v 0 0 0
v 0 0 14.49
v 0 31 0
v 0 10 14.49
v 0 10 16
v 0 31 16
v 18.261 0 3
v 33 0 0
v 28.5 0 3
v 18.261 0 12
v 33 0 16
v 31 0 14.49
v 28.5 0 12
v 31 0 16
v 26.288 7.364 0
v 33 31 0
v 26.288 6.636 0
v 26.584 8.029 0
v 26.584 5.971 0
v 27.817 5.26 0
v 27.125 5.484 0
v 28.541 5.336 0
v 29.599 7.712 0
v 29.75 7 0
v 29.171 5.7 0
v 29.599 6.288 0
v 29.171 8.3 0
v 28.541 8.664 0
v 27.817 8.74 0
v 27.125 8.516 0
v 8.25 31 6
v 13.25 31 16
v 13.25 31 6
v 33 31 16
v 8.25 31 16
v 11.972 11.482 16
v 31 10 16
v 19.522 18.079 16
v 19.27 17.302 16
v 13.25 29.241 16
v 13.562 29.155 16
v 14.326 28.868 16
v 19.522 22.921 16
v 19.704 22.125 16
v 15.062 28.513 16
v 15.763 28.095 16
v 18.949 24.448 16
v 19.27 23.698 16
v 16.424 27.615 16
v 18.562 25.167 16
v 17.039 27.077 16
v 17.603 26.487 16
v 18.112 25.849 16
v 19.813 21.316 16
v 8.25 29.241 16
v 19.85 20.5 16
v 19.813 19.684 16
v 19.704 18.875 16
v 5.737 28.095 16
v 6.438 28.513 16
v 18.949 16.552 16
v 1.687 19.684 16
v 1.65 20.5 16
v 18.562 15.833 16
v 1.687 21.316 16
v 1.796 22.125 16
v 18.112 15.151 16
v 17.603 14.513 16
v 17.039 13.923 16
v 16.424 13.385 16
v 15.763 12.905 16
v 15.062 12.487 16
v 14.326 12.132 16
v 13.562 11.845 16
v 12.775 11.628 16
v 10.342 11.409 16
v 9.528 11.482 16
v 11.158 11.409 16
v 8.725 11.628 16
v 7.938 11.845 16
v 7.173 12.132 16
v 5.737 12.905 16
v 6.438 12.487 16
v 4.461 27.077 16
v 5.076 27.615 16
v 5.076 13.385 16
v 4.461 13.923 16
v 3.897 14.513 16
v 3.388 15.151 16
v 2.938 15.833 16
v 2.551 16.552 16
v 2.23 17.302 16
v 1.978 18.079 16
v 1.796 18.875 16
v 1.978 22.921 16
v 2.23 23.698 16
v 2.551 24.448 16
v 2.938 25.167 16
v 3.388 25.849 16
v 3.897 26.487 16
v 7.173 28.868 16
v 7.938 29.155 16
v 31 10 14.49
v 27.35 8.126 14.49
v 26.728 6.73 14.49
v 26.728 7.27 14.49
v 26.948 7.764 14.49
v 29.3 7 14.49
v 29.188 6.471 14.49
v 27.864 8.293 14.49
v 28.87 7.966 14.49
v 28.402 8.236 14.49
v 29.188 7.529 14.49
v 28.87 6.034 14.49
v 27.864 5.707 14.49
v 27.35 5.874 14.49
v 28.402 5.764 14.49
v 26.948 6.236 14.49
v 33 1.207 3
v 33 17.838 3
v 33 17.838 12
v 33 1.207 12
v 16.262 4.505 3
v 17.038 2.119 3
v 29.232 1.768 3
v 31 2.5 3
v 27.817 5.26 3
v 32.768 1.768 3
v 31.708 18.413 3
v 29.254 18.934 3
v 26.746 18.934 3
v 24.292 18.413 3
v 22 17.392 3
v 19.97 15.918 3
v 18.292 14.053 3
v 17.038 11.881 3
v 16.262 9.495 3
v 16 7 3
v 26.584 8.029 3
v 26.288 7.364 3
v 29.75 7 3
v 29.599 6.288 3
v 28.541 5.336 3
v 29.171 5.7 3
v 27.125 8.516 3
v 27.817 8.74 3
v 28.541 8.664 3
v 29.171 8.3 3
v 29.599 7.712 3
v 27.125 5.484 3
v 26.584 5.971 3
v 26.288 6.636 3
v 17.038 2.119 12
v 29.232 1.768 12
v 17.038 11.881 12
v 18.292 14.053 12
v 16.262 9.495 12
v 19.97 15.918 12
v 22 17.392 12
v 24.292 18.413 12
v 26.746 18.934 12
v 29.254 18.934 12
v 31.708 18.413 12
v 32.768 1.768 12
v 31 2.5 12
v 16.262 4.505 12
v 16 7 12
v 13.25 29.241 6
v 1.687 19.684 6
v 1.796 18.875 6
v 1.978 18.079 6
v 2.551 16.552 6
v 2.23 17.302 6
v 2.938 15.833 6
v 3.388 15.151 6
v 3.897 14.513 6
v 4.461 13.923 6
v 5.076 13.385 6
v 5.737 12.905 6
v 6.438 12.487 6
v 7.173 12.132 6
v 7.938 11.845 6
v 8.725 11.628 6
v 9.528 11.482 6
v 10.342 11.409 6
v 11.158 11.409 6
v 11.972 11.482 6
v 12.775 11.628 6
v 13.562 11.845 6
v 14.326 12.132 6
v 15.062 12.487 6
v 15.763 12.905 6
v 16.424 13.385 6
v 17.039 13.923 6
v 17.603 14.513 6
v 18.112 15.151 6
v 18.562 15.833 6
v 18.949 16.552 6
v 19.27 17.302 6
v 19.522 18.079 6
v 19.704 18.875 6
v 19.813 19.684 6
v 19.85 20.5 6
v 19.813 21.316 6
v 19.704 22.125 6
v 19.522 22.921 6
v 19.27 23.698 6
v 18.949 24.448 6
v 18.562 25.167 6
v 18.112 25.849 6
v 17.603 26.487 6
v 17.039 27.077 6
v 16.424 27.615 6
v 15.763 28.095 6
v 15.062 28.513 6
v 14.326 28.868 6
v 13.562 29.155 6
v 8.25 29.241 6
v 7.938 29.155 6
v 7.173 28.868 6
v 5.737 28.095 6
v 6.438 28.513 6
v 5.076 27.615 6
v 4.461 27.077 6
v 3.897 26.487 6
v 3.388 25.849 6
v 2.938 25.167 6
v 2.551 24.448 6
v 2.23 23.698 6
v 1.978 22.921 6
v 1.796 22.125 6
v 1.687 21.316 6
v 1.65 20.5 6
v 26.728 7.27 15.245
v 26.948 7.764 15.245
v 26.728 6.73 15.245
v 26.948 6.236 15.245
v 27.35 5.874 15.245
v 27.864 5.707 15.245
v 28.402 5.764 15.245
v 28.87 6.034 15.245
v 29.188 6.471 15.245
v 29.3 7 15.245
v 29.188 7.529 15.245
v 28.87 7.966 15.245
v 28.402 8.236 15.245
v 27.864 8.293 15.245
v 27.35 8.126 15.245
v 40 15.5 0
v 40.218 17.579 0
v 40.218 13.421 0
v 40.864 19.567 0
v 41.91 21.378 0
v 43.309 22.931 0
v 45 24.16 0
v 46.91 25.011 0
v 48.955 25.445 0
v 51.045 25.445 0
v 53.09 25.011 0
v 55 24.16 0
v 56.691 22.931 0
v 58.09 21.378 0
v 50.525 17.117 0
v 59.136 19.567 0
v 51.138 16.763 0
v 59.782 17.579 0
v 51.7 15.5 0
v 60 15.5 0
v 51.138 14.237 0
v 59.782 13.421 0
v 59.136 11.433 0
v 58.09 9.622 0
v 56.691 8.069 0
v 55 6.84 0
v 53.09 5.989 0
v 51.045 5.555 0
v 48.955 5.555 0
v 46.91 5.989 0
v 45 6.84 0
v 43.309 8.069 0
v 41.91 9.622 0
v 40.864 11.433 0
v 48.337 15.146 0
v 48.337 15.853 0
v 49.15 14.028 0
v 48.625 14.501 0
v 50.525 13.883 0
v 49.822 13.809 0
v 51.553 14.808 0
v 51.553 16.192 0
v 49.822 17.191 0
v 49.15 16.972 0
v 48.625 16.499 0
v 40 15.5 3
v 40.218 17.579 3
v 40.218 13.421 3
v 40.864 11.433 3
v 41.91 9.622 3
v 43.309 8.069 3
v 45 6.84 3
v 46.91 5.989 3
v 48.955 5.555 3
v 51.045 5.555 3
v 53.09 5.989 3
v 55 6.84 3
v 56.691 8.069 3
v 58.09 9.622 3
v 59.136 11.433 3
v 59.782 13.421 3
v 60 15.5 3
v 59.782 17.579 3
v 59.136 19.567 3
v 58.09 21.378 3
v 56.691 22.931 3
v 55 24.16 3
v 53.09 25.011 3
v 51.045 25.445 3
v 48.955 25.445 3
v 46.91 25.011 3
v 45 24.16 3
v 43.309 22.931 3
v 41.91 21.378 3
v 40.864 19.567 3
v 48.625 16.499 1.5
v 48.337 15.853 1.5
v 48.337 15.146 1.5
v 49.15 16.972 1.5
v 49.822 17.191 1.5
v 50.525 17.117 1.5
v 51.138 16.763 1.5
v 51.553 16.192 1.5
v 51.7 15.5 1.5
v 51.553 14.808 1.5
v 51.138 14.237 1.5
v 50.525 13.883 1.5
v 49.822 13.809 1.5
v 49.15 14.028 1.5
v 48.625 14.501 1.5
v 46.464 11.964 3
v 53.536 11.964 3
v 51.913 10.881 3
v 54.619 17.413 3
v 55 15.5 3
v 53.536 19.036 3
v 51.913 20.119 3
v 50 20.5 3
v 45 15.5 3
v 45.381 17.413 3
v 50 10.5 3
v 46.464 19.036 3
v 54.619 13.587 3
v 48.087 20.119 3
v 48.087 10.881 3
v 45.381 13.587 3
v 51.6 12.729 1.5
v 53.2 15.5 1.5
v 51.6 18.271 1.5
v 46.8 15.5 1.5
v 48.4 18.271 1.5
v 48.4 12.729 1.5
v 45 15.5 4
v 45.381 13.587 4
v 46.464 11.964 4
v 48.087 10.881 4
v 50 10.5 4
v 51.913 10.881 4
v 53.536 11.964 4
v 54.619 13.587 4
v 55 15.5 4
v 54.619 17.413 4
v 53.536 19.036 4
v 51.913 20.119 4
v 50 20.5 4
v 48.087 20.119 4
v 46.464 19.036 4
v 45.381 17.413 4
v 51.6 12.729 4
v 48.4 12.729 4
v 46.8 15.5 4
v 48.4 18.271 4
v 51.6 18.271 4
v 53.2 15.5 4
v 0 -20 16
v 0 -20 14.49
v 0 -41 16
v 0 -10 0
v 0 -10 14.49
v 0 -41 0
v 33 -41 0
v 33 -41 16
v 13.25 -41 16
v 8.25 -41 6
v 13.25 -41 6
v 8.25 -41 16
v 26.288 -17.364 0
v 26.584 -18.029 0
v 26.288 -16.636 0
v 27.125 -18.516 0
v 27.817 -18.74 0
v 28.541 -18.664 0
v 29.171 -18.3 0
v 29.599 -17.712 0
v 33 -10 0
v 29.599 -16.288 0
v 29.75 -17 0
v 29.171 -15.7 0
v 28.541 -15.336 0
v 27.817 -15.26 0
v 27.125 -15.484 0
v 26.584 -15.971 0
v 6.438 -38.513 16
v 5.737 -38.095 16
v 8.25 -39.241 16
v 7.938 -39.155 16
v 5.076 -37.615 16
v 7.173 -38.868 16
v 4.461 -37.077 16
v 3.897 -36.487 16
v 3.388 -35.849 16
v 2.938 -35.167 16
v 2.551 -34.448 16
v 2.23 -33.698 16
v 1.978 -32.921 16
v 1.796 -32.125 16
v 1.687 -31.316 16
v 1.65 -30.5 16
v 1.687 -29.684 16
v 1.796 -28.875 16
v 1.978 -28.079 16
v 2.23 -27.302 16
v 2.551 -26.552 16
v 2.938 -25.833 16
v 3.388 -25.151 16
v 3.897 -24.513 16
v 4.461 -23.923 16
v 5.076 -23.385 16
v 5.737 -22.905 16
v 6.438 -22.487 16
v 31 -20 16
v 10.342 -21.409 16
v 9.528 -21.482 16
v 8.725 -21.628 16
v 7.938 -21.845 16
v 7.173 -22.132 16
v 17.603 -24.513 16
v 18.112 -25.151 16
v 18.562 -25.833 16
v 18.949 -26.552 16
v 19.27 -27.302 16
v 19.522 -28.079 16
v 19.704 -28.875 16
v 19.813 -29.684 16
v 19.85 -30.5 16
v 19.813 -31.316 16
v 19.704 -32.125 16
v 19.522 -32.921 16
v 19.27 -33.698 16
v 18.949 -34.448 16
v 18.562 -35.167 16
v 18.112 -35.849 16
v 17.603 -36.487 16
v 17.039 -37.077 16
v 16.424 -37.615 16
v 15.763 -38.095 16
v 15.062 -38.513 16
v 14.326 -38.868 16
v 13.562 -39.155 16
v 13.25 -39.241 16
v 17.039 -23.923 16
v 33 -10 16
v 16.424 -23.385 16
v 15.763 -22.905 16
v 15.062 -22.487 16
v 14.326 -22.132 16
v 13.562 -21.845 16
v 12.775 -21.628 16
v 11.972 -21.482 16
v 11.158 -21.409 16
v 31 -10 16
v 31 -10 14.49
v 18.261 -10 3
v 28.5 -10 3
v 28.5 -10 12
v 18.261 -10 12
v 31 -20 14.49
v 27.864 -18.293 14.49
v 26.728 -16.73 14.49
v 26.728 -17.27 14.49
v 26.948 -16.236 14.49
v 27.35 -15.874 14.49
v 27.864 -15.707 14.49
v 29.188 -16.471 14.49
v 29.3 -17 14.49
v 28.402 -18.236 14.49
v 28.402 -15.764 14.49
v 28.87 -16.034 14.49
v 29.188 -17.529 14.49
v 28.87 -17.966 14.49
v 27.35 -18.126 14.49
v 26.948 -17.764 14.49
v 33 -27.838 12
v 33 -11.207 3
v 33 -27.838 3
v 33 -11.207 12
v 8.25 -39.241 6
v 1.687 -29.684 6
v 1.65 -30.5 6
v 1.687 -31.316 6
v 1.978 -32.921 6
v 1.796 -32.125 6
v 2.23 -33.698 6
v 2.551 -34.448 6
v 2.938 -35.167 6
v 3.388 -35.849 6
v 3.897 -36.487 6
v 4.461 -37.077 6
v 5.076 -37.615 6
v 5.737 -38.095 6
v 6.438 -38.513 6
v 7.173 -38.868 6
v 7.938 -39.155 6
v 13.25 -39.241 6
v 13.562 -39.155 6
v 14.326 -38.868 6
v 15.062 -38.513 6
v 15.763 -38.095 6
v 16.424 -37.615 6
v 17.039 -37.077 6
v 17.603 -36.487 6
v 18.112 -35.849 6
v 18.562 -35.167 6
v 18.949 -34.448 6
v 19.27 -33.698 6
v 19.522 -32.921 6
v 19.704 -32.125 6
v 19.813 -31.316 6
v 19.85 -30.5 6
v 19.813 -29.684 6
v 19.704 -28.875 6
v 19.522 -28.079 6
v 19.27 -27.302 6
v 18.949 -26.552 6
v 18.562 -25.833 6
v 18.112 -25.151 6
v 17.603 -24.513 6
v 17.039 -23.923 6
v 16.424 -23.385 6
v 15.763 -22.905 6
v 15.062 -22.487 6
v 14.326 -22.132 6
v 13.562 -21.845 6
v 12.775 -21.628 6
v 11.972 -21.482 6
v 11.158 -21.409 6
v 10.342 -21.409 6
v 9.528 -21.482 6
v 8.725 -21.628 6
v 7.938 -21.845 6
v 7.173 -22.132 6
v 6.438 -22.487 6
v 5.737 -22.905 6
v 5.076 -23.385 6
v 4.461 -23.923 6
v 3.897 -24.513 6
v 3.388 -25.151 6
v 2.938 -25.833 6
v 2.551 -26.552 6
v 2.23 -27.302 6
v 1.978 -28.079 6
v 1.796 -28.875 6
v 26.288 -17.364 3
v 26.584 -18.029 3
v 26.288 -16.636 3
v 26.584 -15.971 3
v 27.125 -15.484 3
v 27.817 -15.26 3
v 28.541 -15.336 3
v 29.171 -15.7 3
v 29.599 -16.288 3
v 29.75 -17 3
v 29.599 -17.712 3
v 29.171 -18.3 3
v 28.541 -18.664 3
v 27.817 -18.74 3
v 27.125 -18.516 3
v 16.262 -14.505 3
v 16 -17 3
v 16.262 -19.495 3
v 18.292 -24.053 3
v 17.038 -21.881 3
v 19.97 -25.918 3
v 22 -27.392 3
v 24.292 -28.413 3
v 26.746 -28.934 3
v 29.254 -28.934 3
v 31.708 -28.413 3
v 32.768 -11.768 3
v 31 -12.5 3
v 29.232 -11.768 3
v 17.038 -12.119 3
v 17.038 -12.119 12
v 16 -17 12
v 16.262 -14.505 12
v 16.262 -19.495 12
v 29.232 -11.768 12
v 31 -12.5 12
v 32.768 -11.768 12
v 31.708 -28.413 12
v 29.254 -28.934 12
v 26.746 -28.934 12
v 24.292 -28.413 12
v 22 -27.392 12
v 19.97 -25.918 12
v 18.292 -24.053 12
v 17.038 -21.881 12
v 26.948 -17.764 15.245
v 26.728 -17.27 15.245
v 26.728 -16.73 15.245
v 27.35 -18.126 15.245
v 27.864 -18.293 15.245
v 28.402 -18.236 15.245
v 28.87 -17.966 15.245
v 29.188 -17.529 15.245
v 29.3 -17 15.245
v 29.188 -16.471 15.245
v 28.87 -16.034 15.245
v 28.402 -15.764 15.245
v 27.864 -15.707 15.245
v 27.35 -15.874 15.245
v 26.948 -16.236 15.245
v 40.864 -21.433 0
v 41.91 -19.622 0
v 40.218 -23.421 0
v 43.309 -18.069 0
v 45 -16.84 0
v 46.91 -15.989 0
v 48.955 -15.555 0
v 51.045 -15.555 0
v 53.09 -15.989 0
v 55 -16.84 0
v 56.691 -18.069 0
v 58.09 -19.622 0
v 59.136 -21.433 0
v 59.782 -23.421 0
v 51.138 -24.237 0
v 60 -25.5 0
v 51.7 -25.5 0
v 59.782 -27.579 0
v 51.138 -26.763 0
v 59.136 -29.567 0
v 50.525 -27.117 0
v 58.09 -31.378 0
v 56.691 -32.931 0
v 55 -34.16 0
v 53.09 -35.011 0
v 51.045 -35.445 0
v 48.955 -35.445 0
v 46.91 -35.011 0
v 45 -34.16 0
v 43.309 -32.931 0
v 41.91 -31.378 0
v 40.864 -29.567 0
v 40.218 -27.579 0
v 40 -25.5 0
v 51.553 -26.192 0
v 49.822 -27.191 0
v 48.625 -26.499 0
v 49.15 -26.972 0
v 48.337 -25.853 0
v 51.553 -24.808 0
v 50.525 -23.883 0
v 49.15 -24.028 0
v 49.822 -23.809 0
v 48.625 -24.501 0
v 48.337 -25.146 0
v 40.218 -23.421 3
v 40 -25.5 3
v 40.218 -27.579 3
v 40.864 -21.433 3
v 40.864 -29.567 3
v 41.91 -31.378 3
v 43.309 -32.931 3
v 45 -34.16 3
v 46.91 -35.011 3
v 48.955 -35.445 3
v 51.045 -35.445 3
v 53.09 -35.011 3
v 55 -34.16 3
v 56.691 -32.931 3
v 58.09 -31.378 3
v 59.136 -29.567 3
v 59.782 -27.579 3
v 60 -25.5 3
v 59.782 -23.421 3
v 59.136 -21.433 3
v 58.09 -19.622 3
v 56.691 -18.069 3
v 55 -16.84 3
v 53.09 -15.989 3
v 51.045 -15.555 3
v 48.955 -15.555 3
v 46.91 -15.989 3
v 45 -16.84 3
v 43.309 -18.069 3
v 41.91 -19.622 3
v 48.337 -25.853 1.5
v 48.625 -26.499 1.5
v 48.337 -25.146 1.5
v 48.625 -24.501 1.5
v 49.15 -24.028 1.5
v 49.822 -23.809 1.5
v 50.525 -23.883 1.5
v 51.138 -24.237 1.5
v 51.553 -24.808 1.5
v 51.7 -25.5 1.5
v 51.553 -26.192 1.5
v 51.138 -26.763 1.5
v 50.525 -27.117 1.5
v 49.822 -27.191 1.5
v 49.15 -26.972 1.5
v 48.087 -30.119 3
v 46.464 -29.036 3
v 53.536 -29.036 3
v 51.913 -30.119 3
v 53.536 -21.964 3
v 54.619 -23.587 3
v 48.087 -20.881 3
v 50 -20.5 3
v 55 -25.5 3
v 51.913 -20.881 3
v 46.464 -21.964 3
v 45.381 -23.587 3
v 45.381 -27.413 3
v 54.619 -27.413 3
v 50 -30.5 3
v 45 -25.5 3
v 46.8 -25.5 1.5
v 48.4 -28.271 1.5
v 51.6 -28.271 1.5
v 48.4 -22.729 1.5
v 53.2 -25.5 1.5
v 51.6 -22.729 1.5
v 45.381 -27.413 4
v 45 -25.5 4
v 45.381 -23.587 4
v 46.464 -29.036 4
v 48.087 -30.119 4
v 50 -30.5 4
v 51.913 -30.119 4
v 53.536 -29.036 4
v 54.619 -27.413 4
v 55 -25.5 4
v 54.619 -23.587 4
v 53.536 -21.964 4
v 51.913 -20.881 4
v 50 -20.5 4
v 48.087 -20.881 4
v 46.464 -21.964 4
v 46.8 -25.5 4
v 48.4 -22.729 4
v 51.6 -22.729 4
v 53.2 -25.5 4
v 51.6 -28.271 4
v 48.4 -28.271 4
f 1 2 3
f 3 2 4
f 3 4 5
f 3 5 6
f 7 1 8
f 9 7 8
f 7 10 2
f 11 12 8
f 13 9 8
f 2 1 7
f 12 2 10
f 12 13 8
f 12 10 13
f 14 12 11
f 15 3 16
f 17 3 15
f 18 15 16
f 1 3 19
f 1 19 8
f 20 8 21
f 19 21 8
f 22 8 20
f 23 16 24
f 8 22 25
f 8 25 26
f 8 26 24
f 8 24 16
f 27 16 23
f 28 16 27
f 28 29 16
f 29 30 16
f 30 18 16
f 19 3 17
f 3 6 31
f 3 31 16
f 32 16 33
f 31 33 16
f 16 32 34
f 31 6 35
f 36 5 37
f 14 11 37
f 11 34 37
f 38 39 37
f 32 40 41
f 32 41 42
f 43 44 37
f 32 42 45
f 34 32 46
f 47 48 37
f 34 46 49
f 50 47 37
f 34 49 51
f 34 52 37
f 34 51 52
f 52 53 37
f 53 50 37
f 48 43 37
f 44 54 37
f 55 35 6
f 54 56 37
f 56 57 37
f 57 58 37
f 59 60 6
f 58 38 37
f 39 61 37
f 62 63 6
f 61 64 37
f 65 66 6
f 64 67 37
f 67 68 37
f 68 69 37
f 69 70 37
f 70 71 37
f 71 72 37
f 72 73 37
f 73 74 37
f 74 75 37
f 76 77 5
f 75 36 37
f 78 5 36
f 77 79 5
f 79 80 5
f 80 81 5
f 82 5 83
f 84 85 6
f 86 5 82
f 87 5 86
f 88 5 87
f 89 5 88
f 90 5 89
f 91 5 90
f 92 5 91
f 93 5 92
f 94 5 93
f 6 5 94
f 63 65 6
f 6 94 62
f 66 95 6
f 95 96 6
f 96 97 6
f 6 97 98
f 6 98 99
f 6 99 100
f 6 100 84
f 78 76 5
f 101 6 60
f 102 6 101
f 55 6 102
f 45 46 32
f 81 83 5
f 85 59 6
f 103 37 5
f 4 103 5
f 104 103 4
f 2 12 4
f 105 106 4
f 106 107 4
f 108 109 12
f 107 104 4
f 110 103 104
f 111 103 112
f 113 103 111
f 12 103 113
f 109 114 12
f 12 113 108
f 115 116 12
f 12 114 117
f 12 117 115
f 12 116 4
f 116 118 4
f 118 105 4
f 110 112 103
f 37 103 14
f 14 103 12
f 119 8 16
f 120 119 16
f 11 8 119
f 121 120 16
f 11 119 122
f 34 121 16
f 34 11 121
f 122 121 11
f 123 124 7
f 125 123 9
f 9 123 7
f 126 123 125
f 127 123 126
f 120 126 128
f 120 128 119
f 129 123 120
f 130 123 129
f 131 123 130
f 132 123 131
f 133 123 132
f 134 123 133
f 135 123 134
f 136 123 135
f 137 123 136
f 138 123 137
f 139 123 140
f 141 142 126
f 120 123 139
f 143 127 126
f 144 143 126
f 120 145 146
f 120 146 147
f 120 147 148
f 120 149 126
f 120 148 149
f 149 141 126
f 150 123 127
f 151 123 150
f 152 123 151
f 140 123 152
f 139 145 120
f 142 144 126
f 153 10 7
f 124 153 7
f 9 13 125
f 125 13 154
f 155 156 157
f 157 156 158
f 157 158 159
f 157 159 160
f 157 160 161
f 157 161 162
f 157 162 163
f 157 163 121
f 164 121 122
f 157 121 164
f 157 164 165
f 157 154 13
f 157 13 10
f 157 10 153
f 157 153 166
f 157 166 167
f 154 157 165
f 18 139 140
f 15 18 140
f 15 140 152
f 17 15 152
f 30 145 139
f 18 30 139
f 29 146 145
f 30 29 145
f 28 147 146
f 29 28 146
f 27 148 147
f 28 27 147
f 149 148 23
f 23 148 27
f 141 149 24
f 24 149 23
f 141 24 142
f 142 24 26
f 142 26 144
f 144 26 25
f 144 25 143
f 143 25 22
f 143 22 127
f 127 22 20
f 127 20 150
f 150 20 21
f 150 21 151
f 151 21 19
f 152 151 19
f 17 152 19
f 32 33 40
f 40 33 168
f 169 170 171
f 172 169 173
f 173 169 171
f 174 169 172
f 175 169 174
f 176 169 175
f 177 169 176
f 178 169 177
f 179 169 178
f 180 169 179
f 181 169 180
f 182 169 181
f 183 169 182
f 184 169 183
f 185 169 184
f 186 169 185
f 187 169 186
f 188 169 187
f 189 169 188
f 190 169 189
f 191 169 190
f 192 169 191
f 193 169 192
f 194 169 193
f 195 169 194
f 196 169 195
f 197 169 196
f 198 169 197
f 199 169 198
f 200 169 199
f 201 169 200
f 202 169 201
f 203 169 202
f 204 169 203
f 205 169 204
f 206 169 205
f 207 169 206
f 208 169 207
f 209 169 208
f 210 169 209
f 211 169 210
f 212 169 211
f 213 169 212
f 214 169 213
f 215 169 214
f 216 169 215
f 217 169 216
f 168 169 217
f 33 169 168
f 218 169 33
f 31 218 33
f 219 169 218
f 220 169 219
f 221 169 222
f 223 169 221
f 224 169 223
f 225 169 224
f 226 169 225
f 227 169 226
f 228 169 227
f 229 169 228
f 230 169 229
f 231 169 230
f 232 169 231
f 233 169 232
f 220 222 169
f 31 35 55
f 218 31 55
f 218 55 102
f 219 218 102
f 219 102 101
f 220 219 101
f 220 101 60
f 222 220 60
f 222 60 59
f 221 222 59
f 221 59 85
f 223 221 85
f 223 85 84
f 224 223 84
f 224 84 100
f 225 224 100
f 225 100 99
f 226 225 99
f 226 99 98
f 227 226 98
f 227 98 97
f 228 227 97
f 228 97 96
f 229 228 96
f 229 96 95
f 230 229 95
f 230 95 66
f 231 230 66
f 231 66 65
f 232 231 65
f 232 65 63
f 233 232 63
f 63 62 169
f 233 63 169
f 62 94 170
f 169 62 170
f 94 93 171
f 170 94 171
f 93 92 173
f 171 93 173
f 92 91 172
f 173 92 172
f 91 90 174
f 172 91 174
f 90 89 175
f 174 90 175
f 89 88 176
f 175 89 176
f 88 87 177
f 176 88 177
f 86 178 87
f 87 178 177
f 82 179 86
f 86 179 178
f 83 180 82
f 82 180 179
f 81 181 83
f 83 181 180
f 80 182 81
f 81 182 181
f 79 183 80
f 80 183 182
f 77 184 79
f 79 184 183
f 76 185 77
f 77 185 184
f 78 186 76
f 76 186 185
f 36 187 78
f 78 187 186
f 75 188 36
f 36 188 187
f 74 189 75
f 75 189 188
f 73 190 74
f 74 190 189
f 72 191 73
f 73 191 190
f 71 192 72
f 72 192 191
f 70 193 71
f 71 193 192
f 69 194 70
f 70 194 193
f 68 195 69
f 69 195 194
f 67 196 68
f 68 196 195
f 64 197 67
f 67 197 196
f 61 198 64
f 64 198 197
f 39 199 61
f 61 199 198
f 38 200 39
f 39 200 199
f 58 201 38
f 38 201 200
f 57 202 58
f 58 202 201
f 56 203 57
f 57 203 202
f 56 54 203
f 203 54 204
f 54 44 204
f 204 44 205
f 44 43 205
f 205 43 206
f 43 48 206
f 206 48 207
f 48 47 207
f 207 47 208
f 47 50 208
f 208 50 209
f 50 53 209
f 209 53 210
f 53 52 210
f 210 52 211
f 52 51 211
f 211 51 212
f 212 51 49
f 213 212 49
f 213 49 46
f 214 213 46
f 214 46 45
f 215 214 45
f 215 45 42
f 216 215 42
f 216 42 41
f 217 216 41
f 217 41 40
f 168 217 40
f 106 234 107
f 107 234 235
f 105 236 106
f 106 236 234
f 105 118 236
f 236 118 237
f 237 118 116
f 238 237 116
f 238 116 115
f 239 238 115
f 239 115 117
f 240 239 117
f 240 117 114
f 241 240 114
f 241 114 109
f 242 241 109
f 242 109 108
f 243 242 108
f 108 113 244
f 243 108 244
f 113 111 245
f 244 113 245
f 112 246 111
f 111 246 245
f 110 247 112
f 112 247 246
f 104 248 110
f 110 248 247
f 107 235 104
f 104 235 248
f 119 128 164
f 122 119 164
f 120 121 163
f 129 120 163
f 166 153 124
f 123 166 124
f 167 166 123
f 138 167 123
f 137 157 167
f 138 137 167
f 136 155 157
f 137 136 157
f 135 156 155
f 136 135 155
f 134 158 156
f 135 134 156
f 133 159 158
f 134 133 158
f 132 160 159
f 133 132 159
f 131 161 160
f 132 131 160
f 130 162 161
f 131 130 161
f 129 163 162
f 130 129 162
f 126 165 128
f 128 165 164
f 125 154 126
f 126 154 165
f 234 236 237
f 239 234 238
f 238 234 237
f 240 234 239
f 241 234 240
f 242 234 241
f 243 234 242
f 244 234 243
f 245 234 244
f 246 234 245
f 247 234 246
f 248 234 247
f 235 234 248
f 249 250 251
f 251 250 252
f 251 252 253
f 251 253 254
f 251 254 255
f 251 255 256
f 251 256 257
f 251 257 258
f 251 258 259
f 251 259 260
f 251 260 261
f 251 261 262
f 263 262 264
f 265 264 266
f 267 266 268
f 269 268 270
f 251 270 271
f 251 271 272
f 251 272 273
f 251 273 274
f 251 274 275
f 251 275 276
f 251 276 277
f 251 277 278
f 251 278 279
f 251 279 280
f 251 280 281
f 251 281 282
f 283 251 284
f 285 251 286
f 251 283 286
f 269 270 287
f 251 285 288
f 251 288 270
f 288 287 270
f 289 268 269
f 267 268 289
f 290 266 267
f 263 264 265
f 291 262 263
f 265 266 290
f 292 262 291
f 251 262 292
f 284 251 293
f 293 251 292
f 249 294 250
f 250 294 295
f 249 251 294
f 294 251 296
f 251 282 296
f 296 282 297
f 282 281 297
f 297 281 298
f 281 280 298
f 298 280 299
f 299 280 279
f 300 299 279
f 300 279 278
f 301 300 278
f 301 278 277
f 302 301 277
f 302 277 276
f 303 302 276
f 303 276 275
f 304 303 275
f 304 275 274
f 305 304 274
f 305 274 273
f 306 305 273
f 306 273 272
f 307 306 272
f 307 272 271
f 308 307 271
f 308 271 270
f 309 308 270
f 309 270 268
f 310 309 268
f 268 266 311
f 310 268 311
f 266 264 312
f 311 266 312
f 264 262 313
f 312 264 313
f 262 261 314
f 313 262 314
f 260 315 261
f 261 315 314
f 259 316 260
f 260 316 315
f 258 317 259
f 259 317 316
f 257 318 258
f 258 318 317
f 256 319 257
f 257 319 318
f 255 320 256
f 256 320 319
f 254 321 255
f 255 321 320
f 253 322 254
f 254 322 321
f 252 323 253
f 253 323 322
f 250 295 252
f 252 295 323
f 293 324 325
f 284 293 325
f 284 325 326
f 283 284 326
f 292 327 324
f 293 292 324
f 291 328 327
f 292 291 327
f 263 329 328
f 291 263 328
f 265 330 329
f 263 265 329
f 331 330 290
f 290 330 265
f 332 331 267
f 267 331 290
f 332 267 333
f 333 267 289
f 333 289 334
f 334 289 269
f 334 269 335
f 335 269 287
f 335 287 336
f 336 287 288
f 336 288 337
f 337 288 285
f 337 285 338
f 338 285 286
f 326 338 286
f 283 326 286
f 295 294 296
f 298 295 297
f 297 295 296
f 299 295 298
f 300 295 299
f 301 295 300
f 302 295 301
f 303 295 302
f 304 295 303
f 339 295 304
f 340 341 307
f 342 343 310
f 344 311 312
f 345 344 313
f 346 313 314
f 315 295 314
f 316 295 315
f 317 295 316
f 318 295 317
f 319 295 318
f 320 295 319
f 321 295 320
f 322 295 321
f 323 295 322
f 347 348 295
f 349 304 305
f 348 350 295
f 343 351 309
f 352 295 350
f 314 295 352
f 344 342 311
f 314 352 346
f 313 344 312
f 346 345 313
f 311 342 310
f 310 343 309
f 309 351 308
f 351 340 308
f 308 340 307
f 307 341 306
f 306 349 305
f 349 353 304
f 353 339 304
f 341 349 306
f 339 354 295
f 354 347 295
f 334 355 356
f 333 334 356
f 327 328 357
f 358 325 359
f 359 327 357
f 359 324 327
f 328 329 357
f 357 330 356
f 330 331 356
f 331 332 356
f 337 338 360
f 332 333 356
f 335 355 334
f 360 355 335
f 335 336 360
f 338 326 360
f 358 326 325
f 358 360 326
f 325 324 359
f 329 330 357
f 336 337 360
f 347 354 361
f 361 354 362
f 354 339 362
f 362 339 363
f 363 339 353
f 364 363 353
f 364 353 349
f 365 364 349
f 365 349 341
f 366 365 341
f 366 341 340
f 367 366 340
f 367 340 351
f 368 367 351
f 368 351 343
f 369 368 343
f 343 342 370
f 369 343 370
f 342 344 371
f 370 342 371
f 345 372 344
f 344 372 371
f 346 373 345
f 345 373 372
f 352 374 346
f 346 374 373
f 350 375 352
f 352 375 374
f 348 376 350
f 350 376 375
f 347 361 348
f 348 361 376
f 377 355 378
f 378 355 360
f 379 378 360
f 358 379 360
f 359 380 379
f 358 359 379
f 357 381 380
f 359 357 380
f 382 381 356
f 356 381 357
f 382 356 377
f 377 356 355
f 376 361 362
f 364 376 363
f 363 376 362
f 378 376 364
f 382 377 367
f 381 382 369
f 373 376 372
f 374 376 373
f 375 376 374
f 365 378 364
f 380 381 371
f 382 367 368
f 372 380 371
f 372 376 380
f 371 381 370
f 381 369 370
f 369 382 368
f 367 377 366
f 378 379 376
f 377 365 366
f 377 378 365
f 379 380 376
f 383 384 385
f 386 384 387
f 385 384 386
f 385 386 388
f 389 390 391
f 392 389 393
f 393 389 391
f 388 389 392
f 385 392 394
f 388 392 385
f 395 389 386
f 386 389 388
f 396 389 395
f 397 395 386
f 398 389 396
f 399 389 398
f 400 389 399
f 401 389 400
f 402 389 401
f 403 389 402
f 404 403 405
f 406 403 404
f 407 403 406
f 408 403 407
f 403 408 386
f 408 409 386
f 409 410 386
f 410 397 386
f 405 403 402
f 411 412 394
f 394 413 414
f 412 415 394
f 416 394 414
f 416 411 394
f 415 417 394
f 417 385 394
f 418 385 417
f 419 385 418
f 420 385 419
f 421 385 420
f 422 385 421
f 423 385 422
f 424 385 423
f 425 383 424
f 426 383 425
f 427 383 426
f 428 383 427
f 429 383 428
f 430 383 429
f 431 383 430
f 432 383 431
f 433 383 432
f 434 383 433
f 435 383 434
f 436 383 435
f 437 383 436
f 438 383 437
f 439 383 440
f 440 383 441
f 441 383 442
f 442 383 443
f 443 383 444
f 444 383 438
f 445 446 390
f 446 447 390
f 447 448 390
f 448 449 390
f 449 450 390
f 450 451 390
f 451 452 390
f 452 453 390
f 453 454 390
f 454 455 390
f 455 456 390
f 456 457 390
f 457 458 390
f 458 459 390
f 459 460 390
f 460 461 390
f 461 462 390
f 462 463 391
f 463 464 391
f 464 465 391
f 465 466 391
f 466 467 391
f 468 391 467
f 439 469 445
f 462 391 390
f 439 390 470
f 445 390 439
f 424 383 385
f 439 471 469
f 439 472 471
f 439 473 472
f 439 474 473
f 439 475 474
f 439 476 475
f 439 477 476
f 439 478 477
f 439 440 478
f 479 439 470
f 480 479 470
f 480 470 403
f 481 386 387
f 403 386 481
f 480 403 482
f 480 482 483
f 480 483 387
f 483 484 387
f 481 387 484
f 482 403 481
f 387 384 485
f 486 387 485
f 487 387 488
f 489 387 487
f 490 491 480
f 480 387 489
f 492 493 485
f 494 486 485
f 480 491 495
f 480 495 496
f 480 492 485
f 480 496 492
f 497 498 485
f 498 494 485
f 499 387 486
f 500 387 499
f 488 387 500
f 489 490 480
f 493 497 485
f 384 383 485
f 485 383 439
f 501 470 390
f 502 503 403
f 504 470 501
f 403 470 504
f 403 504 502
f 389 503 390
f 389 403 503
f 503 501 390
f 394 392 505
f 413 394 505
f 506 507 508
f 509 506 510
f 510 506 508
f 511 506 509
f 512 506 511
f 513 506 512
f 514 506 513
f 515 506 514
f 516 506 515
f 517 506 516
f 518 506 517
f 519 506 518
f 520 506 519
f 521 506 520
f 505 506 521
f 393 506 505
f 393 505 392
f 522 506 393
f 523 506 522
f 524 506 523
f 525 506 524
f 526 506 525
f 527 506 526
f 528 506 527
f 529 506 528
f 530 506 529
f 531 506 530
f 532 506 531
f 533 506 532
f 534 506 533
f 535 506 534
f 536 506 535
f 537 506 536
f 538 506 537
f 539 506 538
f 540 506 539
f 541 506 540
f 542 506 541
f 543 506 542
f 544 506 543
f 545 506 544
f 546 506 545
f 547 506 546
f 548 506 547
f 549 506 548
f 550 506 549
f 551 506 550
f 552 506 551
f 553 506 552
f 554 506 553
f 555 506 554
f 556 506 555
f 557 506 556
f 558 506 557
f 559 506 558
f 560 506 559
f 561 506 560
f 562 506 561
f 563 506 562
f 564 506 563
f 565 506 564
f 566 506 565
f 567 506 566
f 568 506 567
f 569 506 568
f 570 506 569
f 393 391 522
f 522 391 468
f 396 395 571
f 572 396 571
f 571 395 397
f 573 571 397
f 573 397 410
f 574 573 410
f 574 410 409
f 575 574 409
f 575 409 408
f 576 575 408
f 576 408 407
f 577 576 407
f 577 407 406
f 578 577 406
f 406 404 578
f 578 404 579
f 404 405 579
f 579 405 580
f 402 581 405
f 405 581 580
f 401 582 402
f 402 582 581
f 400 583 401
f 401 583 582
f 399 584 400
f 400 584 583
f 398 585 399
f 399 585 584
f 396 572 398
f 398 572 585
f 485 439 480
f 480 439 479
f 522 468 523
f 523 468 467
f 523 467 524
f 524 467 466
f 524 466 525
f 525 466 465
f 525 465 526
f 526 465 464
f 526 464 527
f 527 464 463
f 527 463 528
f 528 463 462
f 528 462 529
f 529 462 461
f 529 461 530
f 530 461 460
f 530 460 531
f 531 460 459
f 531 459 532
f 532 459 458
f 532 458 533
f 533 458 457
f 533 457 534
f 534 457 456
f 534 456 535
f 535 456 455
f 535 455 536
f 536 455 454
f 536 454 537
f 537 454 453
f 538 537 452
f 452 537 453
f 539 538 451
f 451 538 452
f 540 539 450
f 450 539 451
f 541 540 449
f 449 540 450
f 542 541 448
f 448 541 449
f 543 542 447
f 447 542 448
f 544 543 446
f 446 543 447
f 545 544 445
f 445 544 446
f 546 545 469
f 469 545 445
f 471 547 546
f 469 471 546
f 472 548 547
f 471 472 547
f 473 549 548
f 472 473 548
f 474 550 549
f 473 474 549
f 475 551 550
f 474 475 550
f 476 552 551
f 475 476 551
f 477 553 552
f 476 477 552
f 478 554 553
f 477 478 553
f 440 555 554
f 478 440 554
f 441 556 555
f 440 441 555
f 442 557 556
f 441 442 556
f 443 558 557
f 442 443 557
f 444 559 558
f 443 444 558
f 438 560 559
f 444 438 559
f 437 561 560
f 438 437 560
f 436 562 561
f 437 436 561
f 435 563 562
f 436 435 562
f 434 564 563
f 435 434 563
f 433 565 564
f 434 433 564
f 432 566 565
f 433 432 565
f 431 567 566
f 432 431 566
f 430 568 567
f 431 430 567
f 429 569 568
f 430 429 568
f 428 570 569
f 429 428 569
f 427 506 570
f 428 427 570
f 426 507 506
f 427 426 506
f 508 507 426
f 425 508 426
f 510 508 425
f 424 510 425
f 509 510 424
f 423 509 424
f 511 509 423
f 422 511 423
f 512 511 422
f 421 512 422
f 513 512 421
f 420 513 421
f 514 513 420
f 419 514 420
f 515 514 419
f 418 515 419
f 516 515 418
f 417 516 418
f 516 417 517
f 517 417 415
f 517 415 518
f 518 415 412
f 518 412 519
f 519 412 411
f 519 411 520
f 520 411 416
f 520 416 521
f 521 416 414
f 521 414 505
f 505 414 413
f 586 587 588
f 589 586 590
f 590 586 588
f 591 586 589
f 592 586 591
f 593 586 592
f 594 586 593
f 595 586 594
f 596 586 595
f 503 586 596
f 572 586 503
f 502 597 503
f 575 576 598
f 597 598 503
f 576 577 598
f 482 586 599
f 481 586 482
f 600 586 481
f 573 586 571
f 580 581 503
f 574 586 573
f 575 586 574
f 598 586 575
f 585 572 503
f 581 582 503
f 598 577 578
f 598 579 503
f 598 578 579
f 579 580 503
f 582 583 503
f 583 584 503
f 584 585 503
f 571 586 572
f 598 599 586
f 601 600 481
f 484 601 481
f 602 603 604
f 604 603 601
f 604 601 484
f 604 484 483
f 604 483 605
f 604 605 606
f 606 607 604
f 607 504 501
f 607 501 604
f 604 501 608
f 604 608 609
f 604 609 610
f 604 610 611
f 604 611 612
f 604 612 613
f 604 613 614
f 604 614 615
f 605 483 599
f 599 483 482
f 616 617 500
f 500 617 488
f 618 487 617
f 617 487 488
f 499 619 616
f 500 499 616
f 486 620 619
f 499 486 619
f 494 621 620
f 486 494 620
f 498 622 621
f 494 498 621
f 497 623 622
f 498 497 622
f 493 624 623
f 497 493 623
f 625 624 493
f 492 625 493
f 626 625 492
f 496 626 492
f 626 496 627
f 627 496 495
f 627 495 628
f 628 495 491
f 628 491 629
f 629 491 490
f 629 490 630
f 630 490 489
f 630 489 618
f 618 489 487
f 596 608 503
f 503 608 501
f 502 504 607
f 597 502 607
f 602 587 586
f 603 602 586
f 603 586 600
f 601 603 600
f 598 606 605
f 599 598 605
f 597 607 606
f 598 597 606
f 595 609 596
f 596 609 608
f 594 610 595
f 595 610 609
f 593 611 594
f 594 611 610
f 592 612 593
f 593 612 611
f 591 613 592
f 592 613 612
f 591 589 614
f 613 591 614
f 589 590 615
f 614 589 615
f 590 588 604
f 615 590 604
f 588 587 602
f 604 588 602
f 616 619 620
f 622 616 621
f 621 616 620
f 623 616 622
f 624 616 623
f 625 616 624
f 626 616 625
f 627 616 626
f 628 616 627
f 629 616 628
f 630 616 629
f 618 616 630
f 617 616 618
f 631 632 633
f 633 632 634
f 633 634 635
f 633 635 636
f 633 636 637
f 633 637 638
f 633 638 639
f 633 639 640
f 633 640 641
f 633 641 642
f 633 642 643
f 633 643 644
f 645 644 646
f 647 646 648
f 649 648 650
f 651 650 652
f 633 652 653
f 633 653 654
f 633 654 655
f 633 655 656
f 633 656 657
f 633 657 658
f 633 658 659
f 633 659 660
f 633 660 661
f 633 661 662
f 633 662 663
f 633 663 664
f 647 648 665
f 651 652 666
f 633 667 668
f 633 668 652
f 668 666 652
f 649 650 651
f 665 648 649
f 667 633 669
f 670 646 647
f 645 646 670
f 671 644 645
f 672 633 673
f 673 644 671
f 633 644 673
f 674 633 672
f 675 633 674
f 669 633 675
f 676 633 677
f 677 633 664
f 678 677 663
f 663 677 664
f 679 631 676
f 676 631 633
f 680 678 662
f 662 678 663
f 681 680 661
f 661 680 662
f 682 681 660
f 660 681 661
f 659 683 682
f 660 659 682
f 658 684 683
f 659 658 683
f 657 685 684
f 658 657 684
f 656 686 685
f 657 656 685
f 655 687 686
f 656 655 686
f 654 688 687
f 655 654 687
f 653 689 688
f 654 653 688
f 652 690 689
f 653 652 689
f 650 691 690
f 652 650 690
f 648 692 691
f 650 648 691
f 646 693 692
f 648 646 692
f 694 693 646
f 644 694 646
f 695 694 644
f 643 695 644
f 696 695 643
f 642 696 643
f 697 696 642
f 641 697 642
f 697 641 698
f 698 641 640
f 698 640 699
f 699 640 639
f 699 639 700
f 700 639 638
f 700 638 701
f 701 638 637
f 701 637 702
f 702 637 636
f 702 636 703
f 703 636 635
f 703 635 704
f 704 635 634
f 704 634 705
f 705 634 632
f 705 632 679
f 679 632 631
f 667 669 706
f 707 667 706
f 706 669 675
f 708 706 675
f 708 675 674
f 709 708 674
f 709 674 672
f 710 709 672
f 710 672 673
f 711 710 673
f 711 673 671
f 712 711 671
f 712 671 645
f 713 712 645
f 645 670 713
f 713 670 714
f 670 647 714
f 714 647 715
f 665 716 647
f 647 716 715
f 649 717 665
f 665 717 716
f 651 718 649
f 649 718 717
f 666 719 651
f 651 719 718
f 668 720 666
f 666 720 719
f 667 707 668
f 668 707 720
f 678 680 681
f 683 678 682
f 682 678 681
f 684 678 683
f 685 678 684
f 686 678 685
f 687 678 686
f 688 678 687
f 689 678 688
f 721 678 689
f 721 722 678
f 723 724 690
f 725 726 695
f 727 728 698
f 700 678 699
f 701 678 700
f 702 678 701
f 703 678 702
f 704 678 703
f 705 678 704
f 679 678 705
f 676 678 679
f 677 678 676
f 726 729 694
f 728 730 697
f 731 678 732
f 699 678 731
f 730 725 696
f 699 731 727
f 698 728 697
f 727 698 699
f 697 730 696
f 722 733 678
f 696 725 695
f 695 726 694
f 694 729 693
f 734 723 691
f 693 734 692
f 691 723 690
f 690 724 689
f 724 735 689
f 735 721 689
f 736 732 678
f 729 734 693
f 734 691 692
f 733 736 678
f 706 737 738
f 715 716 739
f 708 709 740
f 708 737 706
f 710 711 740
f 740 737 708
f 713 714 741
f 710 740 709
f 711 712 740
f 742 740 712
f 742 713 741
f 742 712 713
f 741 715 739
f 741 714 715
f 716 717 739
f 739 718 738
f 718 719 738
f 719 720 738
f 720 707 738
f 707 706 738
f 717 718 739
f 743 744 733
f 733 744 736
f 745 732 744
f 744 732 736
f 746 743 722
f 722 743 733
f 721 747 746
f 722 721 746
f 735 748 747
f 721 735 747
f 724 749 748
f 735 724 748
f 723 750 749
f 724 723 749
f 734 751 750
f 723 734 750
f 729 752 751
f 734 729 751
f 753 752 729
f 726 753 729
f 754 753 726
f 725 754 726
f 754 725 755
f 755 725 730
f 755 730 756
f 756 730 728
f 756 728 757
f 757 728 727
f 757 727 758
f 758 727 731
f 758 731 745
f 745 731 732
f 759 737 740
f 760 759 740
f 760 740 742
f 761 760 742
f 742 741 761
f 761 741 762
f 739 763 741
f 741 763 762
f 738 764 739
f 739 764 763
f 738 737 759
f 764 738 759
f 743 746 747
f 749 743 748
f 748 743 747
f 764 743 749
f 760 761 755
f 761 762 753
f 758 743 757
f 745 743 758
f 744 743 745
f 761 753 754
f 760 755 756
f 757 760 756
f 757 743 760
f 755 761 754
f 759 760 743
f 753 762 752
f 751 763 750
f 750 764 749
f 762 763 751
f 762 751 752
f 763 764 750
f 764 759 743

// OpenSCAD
/**
 * baseStand.scad
 * 
 * created by Dviejo on 2014/Nov/17th
 * 
 * Experimental: this piece is to be atached to your bed. It has to be glued to it so no any part lay on the bed.
 * The part has to hold together base (cristal) and heatbed (mkI-mkII). Base has to be bigger than heatbed.
 * State: experimental. Use under your own risk.
 * 
 */

heatBedHeight=1.61 - 0.1; 

magnetRad = 17.5/2;
magnetHeight = 5;

side = 31;
height = 16;

module stand()
{
  difference()
  {
    cube([side+2, side, height]);
    
    //heatbed dock
    difference()
    {
      translate([-1, -1, height-heatBedHeight]) cube([side+1, 11, heatBedHeight+1]);
      translate([side-3, 10-3, height-heatBedHeight-1]) cylinder(r=1.3, h=1+heatBedHeight/2, $fn=15); 
    }
    
    //height adjustment chamber
    difference()
    {
      translate([side - 3, 10 - 3, 3]) cylinder(r=12, h=height-3-4);
      translate([side, 0, 0]) cylinder(r=2.5, h=height); //you have to remove this after printing
    }
    
    //connection beam
    translate([side-3, 10 - 3, -1]) cylinder(r=1.75, h=10, $fn=15);
    
    //magnet hub
    translate([magnetRad+2, 10 + (side-10)/2, height-(2*magnetHeight)]) cylinder(r=magnetRad*1.04, h=2*magnetHeight+1, $fn=70);
    translate([magnetRad+2-2.5, side-3, height-(2*magnetHeight)]) cube([5, 10, height]);
    
  }
  
}

module wheel()
{
  difference()
  {
    union()
    {
      cylinder(r=10, h=3);
      cylinder(r=5, h=4);
    }
    
    translate([0, 0, -1]) cylinder(r=1.7, h=5, $fn=15);
    translate([0, 0, 1.5]) cylinder(r=3.2, h=3, $fn = 6);
  }
}

stand();
translate([50, side/2, 0]) wheel();

translate([0, -10, 0]) mirror([0, -1, 0])
{
  stand();
  translate([50, side/2, 0]) wheel();
}
